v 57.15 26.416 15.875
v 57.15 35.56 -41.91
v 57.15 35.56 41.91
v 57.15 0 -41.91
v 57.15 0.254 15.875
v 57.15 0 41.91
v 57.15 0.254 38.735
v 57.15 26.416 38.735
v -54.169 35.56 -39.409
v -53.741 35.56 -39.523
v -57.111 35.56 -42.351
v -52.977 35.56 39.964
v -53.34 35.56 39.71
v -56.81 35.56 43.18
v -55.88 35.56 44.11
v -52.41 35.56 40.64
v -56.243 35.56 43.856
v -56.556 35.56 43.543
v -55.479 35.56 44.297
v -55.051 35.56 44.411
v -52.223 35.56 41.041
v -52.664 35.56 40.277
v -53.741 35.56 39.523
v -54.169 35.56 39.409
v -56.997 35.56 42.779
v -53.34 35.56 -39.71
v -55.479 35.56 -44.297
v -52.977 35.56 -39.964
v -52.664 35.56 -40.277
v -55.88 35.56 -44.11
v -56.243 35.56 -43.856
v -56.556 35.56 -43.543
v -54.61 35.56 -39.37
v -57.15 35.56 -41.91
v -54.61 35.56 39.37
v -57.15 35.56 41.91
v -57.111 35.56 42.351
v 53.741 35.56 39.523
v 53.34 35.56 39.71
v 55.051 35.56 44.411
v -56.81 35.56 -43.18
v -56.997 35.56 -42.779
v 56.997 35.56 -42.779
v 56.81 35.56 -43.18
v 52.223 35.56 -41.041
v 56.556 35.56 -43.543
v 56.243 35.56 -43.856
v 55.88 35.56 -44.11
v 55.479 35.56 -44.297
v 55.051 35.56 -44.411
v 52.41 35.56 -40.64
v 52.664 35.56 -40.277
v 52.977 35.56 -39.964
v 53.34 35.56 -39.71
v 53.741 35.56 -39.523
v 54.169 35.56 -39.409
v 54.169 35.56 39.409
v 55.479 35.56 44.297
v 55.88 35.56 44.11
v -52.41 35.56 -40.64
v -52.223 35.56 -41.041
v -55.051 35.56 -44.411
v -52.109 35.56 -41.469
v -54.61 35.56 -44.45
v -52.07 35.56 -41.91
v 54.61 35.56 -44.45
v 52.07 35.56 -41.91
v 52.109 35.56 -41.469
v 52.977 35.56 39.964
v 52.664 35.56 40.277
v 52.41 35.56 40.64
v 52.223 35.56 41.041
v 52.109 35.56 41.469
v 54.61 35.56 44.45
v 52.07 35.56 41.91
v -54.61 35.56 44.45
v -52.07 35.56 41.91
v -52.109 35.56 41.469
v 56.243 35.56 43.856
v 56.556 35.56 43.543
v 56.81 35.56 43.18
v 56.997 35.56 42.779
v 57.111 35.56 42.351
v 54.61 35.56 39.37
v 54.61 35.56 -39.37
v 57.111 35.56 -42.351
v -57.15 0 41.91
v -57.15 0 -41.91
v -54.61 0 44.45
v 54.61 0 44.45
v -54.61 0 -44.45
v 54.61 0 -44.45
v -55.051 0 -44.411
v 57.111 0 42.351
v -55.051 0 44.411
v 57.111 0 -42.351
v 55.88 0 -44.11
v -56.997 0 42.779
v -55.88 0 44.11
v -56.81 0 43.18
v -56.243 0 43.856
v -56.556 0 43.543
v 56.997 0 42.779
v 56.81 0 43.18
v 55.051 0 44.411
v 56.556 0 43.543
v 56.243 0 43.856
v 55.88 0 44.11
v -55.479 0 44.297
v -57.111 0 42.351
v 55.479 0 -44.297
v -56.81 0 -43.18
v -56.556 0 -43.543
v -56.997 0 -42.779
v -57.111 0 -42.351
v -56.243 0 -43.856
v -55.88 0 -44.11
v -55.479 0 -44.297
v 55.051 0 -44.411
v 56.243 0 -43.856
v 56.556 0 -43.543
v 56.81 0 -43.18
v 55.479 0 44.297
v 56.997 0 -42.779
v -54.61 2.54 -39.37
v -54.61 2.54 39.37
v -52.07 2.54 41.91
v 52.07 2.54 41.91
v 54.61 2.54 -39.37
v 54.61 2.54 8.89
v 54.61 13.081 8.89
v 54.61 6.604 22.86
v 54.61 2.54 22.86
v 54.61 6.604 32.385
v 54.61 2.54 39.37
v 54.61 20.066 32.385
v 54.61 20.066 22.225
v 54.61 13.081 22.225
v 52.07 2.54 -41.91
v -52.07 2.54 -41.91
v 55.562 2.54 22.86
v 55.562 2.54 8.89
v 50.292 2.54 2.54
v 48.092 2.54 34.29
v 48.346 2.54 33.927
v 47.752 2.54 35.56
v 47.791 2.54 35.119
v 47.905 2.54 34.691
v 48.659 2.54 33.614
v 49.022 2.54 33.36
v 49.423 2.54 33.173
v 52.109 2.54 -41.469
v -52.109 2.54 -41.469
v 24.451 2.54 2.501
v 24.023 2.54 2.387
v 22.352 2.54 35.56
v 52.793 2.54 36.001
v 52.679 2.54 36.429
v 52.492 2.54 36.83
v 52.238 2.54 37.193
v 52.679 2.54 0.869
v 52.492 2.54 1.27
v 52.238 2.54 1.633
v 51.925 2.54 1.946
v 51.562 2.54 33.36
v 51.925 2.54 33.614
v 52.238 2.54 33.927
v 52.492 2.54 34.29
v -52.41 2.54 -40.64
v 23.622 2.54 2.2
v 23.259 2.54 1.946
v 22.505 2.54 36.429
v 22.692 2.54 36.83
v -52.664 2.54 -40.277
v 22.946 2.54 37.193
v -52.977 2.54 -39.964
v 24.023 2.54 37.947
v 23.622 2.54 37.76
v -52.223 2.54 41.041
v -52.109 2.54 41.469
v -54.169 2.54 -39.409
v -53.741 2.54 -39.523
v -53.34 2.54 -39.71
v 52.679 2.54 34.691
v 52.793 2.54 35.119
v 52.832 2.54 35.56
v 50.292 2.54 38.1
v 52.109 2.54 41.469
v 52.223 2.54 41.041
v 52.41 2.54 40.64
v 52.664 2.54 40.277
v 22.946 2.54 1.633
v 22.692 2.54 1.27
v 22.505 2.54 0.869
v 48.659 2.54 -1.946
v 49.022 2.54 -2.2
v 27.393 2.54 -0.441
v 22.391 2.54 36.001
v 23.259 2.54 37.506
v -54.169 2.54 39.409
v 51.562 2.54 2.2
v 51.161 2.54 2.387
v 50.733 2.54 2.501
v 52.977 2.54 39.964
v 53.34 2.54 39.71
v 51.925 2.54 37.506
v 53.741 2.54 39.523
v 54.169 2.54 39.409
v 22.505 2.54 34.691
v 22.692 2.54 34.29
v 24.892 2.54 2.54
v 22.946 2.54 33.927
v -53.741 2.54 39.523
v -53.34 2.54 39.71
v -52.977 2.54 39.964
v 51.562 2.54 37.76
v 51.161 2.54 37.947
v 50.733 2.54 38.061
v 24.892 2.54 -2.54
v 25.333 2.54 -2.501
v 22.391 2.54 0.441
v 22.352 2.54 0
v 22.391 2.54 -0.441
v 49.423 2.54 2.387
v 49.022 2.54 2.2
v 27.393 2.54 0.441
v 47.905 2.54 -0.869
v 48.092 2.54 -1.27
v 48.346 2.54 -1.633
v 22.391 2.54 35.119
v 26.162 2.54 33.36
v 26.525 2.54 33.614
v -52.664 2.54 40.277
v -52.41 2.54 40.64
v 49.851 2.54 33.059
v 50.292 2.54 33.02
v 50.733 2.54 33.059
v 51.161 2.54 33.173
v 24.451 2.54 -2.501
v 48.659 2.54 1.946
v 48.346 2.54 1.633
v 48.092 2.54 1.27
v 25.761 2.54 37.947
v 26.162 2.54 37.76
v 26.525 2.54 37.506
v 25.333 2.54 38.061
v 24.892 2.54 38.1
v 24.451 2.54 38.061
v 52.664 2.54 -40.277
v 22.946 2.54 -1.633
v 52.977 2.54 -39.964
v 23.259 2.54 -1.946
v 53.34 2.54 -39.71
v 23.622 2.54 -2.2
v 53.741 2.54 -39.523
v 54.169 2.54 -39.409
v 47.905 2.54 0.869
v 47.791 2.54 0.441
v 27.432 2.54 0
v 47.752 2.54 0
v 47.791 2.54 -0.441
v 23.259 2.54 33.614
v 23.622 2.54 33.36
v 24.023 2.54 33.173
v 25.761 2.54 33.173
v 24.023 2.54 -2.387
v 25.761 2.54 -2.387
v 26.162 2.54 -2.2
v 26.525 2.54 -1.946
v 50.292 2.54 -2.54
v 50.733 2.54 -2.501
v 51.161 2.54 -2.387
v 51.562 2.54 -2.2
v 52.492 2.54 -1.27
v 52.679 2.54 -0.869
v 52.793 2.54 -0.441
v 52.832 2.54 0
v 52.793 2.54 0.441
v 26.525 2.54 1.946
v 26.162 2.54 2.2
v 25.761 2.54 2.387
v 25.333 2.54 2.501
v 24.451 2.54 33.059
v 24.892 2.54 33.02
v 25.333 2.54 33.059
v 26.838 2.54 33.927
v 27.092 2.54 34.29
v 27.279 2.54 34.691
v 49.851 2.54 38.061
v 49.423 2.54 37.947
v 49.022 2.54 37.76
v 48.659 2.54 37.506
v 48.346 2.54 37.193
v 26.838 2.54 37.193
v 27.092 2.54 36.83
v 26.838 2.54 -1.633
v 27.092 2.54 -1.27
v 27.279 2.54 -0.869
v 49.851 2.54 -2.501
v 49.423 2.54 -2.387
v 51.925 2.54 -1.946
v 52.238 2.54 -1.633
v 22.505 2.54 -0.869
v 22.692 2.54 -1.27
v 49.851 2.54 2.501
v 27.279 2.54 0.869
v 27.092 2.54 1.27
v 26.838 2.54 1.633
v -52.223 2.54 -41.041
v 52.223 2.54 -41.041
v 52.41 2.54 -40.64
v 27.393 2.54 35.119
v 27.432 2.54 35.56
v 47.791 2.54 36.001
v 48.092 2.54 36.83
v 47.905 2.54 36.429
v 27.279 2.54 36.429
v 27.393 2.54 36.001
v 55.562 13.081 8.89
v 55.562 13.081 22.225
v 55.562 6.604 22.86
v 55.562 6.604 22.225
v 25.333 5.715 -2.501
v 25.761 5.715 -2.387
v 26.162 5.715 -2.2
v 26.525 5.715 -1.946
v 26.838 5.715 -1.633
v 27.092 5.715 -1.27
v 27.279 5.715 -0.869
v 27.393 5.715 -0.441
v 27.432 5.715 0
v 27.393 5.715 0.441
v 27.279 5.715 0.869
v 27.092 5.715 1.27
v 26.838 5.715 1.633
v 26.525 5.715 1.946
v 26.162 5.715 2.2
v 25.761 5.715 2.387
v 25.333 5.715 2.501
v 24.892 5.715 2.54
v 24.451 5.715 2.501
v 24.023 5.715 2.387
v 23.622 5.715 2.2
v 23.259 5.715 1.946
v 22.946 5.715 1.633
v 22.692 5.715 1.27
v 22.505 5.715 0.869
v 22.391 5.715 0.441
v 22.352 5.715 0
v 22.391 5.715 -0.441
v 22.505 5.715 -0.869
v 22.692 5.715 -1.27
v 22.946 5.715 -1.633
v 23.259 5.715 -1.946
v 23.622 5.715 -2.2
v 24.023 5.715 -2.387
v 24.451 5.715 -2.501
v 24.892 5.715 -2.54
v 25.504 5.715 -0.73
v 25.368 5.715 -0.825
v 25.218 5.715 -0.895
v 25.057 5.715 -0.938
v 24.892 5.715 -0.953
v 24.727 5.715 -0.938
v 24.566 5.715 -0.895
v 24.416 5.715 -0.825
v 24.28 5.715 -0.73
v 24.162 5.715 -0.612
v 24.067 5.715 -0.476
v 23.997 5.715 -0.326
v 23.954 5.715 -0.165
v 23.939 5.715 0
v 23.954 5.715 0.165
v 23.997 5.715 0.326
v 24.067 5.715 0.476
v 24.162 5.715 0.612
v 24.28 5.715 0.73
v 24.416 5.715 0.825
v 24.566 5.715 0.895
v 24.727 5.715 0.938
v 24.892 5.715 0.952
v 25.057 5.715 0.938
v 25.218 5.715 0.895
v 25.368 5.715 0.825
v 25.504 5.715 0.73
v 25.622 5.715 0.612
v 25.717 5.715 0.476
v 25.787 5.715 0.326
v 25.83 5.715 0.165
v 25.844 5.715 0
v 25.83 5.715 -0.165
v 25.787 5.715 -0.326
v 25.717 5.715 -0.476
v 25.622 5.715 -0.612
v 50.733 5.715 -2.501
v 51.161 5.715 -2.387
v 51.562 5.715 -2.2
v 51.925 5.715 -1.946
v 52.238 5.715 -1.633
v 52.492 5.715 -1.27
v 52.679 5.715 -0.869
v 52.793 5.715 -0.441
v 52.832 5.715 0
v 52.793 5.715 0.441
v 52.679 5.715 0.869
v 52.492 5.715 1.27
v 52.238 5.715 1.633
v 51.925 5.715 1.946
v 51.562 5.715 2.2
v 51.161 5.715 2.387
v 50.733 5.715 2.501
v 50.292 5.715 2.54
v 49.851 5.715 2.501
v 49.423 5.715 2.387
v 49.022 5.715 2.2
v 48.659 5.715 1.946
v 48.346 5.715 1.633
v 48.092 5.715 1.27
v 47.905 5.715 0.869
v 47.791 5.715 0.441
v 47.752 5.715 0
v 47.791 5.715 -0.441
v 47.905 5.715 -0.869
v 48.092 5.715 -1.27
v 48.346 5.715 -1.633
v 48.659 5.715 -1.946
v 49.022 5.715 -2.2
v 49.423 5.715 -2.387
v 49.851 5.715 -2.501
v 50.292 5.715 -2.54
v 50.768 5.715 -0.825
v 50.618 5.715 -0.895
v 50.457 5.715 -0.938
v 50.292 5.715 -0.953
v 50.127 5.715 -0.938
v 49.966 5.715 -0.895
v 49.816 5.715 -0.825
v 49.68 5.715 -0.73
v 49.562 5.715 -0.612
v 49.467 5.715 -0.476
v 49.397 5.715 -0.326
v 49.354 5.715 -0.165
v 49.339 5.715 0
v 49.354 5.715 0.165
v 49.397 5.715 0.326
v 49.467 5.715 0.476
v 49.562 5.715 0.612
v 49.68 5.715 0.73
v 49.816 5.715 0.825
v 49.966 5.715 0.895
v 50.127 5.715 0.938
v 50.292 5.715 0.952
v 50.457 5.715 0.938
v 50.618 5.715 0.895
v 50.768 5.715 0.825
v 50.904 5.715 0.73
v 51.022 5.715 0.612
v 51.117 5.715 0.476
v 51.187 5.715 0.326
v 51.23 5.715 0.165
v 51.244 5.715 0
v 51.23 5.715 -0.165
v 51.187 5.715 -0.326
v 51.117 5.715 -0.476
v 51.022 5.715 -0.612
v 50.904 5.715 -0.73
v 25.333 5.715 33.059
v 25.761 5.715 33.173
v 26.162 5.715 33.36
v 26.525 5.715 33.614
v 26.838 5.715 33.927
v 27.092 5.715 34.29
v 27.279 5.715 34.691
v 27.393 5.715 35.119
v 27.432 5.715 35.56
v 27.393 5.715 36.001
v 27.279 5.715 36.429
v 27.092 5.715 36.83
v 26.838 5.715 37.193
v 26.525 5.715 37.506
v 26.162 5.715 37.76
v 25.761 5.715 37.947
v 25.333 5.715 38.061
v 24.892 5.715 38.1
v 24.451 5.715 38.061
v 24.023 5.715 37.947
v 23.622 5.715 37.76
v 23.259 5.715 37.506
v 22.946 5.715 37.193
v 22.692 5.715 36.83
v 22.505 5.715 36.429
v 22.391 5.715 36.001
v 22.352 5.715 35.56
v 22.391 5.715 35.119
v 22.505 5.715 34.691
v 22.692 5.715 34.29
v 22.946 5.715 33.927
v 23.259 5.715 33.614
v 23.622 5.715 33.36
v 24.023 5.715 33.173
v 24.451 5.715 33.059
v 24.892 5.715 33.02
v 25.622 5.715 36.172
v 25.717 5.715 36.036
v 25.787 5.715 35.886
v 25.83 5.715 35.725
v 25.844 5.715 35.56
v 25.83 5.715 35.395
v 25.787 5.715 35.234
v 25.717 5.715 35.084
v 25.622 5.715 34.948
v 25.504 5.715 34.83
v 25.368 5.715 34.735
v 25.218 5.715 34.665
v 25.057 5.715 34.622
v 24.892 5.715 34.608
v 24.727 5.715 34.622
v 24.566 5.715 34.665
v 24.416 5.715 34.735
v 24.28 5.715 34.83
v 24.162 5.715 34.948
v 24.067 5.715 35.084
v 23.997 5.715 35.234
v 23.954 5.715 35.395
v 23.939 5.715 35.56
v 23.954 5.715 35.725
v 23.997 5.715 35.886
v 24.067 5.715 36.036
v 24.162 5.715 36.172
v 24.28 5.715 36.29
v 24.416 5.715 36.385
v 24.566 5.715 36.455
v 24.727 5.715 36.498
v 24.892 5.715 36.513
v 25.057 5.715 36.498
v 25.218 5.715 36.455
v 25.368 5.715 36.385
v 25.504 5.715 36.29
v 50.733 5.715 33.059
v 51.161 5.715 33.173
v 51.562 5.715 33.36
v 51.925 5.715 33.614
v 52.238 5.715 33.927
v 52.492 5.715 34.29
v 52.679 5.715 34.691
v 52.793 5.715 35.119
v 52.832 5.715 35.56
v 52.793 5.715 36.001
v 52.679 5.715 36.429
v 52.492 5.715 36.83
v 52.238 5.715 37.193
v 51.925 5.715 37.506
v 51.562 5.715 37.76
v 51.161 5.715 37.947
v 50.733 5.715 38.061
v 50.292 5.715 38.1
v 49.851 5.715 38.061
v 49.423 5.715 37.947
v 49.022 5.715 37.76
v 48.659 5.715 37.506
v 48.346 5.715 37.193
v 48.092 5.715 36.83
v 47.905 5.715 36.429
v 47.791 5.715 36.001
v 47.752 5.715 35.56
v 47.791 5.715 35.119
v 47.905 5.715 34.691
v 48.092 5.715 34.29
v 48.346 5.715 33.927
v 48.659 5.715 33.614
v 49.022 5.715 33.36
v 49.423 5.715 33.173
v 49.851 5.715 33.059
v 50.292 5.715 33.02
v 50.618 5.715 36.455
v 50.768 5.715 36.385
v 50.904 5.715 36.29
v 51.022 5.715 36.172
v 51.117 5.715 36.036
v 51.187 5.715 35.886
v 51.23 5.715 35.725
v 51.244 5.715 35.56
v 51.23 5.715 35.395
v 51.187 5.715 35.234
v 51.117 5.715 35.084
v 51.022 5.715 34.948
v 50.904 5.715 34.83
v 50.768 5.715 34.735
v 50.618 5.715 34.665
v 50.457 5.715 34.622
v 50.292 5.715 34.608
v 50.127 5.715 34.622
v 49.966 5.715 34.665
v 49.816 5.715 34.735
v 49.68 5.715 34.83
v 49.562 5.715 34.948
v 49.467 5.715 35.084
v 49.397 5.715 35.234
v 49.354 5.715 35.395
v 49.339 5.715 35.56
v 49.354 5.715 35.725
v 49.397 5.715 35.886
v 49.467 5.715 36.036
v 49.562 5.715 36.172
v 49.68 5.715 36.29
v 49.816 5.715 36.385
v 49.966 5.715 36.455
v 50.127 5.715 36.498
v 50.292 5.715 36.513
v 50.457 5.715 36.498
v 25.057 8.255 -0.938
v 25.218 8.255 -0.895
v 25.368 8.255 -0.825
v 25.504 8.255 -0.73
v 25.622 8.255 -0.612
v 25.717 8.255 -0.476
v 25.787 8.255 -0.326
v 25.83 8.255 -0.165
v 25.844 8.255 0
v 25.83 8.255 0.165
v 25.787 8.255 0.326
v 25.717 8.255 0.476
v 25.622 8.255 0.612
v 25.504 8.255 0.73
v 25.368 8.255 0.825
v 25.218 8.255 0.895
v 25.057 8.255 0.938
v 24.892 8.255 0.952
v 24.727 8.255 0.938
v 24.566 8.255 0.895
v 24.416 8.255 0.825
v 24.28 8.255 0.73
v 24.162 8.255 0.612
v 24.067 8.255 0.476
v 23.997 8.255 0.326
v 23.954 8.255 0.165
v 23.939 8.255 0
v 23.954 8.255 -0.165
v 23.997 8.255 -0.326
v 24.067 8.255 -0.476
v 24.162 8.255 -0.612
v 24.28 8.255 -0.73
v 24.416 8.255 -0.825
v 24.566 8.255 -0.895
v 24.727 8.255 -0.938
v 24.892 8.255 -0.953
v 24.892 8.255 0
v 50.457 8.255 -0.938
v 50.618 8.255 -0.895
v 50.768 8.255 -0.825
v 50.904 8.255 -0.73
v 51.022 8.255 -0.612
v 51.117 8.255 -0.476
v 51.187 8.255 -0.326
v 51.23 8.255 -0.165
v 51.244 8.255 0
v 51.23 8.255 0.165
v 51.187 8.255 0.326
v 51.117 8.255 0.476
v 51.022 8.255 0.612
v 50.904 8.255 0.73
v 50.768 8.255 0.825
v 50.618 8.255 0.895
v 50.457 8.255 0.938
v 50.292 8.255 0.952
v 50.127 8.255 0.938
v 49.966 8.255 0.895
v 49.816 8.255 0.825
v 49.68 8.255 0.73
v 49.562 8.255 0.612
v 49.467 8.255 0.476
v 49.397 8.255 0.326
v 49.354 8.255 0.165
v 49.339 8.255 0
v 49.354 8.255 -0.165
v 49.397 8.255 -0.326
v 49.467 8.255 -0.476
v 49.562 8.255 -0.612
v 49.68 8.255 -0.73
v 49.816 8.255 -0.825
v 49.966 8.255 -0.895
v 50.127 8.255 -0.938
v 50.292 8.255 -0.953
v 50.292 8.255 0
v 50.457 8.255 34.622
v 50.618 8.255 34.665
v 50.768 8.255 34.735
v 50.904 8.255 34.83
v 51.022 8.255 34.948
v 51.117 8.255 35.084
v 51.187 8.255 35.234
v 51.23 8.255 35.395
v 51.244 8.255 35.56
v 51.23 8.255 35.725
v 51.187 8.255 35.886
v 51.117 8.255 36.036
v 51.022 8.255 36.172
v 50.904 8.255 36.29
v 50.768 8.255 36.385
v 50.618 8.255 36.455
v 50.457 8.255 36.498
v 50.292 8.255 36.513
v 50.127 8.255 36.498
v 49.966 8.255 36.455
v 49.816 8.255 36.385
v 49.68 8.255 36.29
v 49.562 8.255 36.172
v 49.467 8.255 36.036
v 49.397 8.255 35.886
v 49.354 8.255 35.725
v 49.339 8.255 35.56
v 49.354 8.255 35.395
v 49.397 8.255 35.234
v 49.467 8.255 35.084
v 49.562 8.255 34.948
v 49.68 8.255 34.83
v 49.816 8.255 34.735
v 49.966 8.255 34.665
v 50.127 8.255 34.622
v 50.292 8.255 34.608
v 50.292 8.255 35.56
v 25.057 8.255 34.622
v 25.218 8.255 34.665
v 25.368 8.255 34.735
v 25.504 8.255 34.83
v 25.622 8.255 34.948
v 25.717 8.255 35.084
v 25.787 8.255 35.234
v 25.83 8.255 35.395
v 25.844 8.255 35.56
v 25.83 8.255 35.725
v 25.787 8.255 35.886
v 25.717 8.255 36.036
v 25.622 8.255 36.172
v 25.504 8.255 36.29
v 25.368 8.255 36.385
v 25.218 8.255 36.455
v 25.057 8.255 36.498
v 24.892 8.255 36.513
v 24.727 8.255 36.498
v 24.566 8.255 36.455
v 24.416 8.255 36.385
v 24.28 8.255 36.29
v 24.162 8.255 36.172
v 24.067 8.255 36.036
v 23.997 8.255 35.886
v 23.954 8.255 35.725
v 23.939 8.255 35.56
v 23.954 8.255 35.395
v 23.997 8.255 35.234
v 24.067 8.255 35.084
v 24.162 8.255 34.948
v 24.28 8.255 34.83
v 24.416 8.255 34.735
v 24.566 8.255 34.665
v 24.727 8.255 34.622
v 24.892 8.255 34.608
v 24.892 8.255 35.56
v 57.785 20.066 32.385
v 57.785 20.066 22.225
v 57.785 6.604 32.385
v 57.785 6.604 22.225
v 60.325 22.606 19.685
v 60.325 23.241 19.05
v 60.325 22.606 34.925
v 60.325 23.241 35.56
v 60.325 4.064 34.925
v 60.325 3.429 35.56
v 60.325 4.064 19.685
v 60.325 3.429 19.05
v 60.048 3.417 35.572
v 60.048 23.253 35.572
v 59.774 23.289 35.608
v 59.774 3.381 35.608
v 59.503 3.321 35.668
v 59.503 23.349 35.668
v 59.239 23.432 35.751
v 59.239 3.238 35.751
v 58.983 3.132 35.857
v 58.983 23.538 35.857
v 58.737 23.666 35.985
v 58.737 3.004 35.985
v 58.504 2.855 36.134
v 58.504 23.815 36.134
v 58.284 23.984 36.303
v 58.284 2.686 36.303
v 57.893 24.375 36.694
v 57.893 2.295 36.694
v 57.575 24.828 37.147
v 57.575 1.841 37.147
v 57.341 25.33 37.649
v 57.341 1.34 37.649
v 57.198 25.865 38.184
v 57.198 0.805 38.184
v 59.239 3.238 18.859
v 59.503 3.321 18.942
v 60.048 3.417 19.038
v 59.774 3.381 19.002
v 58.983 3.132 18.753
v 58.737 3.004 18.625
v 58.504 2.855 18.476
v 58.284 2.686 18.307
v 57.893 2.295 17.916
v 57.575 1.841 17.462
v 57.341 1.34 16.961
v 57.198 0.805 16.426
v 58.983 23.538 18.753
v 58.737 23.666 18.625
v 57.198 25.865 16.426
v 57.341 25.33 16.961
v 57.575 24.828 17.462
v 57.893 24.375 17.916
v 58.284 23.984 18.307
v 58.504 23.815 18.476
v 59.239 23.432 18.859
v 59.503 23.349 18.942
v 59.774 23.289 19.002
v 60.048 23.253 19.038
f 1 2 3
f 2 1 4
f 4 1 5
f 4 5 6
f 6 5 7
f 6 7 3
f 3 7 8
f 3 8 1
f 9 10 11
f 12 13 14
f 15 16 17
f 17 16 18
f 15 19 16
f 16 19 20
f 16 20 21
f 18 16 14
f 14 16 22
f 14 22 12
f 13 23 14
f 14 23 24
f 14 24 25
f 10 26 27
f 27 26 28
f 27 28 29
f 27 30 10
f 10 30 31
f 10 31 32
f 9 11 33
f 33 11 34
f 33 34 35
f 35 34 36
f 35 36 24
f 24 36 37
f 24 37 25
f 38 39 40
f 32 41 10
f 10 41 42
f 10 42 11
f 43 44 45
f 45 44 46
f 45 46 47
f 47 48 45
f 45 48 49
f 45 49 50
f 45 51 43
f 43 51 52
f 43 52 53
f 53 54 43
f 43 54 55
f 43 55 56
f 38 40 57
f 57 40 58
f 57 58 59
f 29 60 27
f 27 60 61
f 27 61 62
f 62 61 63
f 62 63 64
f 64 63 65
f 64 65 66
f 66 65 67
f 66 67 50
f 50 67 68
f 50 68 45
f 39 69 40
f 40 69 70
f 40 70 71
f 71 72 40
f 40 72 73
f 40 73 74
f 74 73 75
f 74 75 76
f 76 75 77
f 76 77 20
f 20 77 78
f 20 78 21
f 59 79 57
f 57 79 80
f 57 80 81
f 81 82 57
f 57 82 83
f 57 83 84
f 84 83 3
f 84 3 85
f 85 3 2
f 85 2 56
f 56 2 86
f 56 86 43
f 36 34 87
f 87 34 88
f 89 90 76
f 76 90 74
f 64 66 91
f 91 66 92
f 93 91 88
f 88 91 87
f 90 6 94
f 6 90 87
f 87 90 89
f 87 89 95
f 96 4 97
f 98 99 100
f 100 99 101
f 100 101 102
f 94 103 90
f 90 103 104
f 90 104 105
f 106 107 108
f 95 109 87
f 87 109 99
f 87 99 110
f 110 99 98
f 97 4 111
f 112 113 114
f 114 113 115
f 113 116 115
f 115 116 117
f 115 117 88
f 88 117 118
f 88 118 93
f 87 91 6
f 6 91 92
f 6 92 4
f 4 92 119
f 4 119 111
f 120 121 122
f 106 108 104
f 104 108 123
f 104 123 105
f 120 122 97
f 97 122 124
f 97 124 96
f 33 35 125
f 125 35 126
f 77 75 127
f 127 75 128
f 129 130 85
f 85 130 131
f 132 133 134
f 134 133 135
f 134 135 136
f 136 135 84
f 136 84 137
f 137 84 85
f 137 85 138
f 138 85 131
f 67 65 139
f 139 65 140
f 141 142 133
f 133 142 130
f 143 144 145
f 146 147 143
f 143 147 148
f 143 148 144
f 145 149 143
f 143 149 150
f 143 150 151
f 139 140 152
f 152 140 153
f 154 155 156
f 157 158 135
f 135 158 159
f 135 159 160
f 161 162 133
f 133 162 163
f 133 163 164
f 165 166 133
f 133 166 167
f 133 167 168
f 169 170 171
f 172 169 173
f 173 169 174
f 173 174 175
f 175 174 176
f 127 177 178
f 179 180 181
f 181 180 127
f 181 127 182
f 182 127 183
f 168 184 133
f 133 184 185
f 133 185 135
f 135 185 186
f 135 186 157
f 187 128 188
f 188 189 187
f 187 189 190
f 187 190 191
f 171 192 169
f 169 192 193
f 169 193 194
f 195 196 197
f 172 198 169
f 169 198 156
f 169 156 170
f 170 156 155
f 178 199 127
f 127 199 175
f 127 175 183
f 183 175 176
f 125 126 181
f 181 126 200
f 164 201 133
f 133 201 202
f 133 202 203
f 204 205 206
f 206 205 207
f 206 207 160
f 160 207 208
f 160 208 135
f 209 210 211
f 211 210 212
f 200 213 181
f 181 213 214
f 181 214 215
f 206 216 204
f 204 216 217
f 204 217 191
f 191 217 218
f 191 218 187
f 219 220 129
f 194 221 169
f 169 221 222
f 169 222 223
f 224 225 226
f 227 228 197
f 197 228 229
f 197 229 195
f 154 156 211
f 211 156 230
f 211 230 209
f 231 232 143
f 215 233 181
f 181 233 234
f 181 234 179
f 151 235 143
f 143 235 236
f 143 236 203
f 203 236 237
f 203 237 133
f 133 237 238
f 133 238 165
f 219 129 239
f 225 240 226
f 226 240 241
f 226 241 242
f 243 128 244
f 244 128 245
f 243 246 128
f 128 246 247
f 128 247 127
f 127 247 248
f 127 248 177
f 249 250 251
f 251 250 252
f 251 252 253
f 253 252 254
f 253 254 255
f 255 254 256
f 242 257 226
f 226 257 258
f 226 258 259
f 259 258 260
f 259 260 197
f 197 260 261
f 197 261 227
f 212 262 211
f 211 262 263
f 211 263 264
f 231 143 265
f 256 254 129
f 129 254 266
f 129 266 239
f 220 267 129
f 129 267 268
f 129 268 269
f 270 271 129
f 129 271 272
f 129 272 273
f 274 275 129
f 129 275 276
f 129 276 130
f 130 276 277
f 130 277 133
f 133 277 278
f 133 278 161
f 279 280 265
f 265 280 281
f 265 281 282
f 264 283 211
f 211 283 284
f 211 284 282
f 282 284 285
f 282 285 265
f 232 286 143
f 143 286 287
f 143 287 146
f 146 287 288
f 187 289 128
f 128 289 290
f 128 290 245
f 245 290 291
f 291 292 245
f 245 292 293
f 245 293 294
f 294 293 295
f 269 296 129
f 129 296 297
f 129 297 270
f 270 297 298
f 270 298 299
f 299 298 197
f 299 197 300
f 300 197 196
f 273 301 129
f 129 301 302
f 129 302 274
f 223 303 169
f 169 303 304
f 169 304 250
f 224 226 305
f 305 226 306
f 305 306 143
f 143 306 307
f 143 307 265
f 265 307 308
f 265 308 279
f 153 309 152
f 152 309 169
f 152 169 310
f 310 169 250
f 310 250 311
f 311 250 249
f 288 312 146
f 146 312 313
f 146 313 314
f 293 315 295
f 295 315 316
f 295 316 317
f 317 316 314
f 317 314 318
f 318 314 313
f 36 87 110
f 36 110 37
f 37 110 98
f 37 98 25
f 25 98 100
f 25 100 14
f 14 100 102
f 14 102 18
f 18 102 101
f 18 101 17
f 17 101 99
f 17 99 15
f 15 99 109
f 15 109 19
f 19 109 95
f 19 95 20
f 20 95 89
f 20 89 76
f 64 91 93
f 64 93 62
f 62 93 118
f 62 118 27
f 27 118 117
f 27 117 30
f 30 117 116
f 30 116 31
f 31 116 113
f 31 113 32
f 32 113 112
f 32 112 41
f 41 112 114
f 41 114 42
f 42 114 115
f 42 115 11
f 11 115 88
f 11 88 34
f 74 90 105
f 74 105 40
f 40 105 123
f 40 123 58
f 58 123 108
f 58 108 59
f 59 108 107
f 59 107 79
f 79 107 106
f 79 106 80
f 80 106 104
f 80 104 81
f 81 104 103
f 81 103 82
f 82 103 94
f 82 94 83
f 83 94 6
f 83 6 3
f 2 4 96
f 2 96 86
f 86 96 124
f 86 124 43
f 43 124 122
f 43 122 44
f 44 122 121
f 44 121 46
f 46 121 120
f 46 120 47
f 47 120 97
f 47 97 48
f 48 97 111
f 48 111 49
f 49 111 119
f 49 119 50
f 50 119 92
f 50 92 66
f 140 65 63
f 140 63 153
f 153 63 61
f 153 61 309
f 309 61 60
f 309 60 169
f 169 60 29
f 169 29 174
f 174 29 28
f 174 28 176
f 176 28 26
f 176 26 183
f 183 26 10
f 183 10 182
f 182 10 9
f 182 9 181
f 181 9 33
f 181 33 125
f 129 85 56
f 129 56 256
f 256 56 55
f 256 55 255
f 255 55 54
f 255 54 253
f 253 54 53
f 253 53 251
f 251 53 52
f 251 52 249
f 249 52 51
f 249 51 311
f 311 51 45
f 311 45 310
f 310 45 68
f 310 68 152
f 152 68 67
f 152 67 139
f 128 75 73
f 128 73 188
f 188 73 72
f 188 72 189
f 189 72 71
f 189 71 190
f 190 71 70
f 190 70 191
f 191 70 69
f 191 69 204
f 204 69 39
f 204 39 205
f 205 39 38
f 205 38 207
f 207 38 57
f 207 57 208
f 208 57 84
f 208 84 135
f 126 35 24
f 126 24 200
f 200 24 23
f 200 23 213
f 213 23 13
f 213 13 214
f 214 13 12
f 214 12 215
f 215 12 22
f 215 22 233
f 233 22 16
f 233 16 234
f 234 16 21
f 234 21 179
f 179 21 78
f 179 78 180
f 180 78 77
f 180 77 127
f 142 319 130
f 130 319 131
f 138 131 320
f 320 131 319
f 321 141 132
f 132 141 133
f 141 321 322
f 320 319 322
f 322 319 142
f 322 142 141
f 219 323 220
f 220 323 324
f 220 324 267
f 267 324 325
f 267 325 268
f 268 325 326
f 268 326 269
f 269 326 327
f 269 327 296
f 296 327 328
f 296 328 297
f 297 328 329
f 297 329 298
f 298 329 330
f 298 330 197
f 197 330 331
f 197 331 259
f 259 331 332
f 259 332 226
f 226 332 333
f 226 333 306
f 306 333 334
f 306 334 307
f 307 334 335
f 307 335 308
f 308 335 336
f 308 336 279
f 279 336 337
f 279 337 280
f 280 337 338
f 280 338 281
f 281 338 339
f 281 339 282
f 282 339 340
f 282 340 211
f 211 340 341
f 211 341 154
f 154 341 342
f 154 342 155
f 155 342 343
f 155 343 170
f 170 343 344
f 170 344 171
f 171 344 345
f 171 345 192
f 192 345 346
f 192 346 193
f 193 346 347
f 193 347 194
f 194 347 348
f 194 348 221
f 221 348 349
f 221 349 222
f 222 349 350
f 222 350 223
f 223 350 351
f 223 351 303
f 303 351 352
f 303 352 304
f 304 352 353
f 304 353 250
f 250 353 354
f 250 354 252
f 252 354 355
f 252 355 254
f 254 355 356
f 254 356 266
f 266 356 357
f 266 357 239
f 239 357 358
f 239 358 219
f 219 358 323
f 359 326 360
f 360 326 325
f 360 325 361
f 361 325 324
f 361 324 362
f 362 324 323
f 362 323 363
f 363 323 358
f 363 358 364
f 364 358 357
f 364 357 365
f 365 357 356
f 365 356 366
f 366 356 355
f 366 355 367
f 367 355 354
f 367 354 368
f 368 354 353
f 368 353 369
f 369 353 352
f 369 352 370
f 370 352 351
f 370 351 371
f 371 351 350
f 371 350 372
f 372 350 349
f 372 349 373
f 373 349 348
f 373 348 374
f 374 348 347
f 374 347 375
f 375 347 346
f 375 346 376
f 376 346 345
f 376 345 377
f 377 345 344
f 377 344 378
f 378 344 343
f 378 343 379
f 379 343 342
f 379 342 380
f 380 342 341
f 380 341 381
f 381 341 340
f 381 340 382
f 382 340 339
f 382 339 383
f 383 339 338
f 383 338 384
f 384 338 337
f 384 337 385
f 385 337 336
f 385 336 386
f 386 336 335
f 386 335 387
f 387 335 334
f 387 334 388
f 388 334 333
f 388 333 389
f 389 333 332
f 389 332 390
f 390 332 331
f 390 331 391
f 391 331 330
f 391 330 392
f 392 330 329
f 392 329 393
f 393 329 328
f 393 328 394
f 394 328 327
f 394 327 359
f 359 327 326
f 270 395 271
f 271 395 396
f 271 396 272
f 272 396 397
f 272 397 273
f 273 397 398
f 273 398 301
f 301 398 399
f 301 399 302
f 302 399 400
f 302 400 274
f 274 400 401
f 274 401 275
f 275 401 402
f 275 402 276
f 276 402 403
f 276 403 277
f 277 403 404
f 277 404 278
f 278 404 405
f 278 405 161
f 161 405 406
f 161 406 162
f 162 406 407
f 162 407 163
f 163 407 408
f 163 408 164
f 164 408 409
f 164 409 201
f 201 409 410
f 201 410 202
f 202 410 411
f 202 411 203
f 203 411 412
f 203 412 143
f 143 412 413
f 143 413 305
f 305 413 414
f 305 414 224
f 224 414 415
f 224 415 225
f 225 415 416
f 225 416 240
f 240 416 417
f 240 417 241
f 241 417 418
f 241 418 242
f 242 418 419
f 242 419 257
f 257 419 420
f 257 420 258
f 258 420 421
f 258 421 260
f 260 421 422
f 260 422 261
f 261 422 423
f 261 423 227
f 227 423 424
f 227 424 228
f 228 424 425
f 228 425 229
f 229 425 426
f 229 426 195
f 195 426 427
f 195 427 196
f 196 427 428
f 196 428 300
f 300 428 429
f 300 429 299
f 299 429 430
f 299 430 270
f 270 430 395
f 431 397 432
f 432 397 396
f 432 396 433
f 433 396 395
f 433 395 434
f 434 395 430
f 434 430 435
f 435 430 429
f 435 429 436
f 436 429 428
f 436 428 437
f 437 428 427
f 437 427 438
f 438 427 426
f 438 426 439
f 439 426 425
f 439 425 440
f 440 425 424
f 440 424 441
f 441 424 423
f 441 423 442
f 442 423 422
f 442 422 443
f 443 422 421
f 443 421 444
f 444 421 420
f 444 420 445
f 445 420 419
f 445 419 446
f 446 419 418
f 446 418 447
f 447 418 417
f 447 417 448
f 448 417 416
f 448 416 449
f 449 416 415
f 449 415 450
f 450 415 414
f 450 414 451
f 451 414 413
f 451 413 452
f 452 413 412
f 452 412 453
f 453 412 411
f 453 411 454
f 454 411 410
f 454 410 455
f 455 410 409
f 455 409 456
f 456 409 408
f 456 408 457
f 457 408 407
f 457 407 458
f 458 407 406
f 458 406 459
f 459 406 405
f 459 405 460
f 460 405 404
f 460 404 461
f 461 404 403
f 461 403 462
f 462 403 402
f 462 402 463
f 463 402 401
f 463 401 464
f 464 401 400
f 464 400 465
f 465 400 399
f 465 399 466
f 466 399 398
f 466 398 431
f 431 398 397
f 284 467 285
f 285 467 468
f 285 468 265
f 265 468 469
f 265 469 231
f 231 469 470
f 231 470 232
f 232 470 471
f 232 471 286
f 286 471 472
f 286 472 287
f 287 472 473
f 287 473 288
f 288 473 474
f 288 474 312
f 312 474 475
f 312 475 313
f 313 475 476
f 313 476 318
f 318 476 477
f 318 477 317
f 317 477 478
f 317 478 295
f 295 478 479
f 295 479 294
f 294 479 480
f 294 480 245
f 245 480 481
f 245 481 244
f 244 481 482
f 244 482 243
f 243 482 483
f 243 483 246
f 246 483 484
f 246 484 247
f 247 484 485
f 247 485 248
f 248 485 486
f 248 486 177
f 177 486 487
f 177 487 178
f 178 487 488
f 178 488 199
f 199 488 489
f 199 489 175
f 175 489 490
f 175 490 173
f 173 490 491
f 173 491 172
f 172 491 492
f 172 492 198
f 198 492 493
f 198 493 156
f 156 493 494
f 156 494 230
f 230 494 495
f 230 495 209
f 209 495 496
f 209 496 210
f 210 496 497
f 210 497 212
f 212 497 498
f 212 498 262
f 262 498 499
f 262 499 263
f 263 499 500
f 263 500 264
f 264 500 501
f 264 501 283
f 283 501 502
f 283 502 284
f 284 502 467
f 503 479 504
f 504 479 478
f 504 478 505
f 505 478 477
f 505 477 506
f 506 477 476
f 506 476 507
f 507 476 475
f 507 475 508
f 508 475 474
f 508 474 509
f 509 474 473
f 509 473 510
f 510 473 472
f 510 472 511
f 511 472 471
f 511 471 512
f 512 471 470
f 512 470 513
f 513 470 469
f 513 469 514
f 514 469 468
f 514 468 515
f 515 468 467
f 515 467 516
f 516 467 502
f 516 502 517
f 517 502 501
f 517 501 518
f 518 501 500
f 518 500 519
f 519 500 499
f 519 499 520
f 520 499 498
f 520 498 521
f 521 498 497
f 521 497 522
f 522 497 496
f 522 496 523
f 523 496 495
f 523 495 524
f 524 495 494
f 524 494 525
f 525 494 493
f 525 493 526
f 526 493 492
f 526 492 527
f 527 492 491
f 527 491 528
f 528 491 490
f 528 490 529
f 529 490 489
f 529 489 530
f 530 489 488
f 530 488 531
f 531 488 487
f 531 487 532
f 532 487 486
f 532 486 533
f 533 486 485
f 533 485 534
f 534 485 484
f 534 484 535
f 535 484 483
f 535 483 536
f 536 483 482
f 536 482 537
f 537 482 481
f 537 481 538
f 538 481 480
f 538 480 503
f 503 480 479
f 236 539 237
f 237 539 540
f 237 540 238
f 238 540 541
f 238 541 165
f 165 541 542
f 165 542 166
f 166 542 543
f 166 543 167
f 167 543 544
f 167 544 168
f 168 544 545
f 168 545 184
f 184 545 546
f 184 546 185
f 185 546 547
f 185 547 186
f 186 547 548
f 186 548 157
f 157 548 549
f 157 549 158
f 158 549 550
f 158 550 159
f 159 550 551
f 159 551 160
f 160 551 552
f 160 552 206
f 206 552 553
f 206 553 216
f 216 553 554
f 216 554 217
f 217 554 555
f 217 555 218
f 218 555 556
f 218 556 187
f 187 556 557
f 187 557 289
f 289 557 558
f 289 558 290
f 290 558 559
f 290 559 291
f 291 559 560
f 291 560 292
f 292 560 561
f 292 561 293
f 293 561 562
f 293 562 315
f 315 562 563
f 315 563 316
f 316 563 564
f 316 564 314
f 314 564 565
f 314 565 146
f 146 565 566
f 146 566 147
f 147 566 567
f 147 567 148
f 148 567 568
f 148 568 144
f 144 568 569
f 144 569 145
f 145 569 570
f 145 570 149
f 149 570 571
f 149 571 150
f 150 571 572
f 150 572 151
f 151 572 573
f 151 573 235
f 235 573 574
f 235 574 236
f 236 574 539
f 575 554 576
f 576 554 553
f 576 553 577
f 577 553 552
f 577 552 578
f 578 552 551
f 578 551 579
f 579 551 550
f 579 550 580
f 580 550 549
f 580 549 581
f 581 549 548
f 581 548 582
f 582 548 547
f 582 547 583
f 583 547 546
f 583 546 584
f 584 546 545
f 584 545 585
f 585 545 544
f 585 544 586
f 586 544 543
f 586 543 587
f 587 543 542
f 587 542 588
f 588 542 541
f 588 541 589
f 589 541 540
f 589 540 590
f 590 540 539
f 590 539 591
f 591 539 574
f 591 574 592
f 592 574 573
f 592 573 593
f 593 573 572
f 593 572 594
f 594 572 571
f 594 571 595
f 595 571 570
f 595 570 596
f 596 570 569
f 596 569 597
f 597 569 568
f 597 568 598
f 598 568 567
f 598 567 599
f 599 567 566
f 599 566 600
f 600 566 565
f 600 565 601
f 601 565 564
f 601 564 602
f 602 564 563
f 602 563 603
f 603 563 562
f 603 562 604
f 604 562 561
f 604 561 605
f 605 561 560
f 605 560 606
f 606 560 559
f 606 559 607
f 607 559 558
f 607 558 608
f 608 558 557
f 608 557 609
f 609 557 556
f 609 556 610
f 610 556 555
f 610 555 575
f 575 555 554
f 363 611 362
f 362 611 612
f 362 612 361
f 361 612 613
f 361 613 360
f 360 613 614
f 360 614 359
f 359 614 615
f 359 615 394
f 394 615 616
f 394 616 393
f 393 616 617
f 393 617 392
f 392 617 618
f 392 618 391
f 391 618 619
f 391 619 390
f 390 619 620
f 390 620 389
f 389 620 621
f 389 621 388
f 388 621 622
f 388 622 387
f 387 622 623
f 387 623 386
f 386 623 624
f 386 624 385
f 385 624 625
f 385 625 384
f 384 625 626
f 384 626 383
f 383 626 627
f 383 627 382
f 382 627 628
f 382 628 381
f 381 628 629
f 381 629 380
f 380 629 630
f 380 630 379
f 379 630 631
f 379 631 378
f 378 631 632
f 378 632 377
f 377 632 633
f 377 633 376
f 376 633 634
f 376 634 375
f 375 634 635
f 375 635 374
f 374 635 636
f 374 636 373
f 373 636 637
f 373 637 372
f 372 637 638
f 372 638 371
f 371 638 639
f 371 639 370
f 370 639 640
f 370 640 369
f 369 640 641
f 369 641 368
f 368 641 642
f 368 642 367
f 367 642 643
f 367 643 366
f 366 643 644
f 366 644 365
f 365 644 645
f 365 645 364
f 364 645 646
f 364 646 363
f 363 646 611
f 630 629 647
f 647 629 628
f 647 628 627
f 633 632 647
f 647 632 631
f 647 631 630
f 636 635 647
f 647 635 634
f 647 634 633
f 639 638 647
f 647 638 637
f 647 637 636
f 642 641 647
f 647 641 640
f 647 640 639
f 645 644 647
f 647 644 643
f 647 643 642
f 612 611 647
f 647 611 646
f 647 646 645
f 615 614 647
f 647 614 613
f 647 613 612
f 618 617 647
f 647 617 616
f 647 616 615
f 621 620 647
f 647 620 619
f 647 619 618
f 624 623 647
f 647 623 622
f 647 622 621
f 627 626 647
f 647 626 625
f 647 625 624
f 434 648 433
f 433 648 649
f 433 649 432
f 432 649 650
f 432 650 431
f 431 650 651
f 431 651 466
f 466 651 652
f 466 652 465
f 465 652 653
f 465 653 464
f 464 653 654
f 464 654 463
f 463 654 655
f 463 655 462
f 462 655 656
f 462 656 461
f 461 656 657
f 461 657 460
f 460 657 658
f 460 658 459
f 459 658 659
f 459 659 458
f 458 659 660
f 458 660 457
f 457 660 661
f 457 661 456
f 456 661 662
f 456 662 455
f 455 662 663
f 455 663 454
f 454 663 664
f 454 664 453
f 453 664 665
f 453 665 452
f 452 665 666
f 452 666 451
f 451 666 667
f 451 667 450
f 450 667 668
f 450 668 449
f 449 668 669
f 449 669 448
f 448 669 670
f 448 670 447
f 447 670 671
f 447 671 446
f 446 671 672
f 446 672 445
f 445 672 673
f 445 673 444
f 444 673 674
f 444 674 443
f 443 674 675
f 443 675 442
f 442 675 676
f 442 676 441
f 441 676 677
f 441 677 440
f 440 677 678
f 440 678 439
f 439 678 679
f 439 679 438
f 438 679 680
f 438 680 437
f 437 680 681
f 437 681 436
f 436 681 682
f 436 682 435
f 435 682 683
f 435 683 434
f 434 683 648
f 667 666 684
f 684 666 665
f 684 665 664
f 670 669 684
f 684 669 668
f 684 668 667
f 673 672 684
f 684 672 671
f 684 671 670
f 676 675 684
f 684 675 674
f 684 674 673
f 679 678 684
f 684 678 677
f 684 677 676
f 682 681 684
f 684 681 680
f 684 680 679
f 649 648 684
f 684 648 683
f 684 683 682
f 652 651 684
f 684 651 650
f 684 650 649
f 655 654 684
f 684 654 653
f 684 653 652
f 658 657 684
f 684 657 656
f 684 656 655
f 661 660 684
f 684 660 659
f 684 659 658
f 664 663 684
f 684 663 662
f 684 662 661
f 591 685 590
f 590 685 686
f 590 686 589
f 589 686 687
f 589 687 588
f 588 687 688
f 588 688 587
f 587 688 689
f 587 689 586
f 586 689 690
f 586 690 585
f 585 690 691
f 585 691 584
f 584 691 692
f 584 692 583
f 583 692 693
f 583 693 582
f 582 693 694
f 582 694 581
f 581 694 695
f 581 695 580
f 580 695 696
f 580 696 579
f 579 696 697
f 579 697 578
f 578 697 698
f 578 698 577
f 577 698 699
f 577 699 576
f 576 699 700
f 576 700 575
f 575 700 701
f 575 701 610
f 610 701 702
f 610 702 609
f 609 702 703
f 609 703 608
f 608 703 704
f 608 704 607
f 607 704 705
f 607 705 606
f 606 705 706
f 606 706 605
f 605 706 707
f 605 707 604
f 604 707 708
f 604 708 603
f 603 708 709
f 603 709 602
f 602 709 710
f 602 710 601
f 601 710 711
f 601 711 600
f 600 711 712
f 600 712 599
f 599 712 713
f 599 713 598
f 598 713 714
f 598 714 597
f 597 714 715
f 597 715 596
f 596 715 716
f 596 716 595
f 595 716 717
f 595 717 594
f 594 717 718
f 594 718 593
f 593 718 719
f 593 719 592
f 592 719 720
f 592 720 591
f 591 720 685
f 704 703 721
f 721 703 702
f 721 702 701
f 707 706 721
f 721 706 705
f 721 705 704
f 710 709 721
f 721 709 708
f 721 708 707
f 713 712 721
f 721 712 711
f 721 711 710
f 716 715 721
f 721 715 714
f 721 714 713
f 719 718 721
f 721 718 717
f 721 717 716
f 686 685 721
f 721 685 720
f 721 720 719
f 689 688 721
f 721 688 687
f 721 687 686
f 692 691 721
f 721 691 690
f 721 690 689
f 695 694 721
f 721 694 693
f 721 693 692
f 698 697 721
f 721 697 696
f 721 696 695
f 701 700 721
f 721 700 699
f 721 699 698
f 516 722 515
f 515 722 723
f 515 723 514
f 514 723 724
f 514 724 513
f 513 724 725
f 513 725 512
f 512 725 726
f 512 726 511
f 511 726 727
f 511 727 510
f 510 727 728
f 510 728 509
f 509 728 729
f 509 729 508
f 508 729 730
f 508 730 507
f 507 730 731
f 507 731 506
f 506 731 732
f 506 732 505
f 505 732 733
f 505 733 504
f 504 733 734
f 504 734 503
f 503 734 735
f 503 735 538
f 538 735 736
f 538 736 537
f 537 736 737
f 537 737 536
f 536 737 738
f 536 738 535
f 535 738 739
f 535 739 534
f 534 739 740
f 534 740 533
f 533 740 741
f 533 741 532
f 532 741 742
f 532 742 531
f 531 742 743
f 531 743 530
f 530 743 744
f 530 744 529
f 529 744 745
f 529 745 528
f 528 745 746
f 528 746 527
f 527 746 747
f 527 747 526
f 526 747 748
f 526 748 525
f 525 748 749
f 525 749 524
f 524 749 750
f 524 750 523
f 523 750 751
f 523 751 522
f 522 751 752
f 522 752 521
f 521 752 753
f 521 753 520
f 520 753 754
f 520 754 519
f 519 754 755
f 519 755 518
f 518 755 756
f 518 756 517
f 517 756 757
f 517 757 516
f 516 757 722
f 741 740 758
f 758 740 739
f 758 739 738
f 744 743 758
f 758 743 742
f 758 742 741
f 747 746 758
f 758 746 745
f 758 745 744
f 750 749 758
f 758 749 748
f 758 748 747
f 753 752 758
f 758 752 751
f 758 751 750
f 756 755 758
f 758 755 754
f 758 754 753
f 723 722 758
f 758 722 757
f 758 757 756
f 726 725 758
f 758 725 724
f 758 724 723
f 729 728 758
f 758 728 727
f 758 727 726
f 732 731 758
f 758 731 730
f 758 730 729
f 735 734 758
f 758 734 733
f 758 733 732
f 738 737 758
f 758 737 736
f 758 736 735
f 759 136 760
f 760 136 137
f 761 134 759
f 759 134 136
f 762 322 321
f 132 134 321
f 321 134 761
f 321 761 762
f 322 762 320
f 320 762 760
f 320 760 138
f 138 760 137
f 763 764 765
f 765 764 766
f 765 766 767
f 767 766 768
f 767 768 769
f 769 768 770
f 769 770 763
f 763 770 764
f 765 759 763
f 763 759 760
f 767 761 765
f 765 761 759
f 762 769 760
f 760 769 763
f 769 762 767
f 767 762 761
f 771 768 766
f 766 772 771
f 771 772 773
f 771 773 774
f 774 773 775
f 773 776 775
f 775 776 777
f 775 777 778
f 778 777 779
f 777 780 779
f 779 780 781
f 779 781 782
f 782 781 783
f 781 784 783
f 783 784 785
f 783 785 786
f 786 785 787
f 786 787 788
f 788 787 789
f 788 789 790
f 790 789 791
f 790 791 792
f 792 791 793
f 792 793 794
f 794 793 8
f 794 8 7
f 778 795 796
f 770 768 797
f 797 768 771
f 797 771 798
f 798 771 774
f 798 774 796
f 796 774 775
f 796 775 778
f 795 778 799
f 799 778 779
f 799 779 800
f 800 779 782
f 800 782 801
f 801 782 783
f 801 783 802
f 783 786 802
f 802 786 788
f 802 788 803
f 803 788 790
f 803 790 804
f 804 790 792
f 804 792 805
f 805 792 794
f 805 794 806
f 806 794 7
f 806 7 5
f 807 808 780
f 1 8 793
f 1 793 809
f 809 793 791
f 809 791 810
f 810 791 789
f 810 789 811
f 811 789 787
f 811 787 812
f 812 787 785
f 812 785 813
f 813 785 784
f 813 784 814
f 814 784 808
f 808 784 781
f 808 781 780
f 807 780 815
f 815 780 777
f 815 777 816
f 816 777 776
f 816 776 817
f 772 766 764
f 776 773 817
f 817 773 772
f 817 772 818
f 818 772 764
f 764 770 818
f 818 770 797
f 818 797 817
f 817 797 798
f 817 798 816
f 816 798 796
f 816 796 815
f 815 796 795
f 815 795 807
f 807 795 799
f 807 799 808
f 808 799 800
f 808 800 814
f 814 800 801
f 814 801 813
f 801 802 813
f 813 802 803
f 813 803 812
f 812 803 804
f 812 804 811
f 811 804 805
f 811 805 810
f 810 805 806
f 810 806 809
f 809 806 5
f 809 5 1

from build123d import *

# Parameters (mm, degrees)
SKETCH1_W           = 114.3
SKETCH1_H           = 88.9
BOSS_EXTRUDE1_DEPTH = 35.56
SHELL1_T            = -2.54
FILLET1_R           = 2.54
SKETCH2_R           = 2.54
BOSS_EXTRUDE2_DEPTH = 33.02
SKETCH4_W           = 13.97
SKETCH4_H           = 10.541
CUT_EXTRUDE2_DEPTH  = 0.9525
SKETCH5_R           = 2.54
BOSS_EXTRUDE3_DEPTH = 3.175
SKETCH6_R           = 0.9525
BOSS_EXTRUDE4_DEPTH = 2.54
CUT_EXTRUDE3_REACH  = 129.69
SKETCH7_W           = 10.16
SKETCH7_H           = 13.462
SKETCH8_W           = 16.51
SKETCH8_H           = 19.812
SKETCH8_W_2         = 10.16
SKETCH8_H_2         = 13.462
BOSS_EXTRUDE5_DEPTH = 3.175
CHAMFER1_SIZE       = 2.54
FILLET2_R           = 3.175


with BuildPart() as part:
    # Sketch1 → Boss-Extrude1 (new body)
    with BuildSketch(Plane(origin=(0, 0, 0), x_dir=(1, 0, 0), z_dir=(0, 1, 0))):
        Rectangle(SKETCH1_W, SKETCH1_H)
    extrude(amount=BOSS_EXTRUDE1_DEPTH)

    # Shell1
    shell1_openings = [part.faces().sort_by_distance(p)[0] for p in [
        (0, 35.56, 0),
    ]]
    offset(amount=SHELL1_T, openings=shell1_openings, kind=Kind.INTERSECTION)

    # Fillet1
    fillet1_edges = [part.edges().sort_by_distance(p)[0] for p in [
        (-54.61, 19.05, -41.91),
        (-54.61, 19.05, 41.91),
        (54.61, 19.05, 41.91),
        (54.61, 19.05, -41.91),
        (-57.15, 17.78, -44.45),
        (57.15, 17.78, -44.45),
        (57.15, 17.78, 44.45),
        (-57.15, 17.78, 44.45),
    ]]
    fillet(fillet1_edges, radius=FILLET1_R)

    # Sketch2 → Boss-Extrude2 (add)
    with BuildSketch(Plane(origin=(0, 35.56, 0), x_dir=(1, 0, 0), z_dir=(0, 1, 0))):
        with Locations((-54.61, 41.91)):
            Circle(SKETCH2_R)
        with Locations((54.61, 41.91)):
            Circle(SKETCH2_R)
        with Locations((54.61, -41.91)):
            Circle(SKETCH2_R)
        with Locations((-54.61, -41.91)):
            Circle(SKETCH2_R)
    extrude(amount=-BOSS_EXTRUDE2_DEPTH)

    # Sketch4 → Cut-Extrude2 (cut)
    with BuildSketch(Plane.ZY.offset(-54.61)):
        with Locations((15.875, 7.8105)):
            Rectangle(SKETCH4_W, SKETCH4_H)
    extrude(amount=-CUT_EXTRUDE2_DEPTH, mode=Mode.SUBTRACT)

    # Sketch5 → Boss-Extrude3 (add)
    with BuildSketch(Plane(origin=(0, 2.54, 0), x_dir=(1, 0, 0), z_dir=(0, 1, 0))):
        with Locations(Location((24.892, 0, 0), (0, 0, 90))):
            Circle(SKETCH5_R)
        with Locations(Location((50.292, 0, 0), (0, 0, 90))):
            Circle(SKETCH5_R)
        with Locations(Location((24.892, -35.56, 0), (0, 0, 90))):
            Circle(SKETCH5_R)
        with Locations(Location((50.292, -35.56, 0), (0, 0, 90))):
            Circle(SKETCH5_R)
    extrude(amount=BOSS_EXTRUDE3_DEPTH)

    # Sketch6 → Boss-Extrude4 (add)
    with BuildSketch(Plane(origin=(0, 5.715, 0), x_dir=(1, 0, 0), z_dir=(0, 1, 0))):
        with Locations(Location((24.892, 0, 0), (0, 0, 270))):
            Circle(SKETCH6_R)
        with Locations(Location((50.292, 0, 0), (0, 0, 270))):
            Circle(SKETCH6_R)
        with Locations(Location((50.292, -35.56, 0), (0, 0, 270))):
            Circle(SKETCH6_R)
        with Locations(Location((24.892, -35.56, 0), (0, 0, 270))):
            Circle(SKETCH6_R)
    extrude(amount=BOSS_EXTRUDE4_DEPTH)

    # Sketch7 → Cut-Extrude3 (cut, up to next)
    with BuildSketch(Plane(origin=(57.15, 0, 0), x_dir=(0, 0, -1), z_dir=(1, 0, 0)), mode=Mode.PRIVATE) as cut_extrude3_sk1:
        with Locations((-27.305, 13.335)):
            Rectangle(SKETCH7_W, SKETCH7_H)
    cut_extrude3_tool1 = extrude(cut_extrude3_sk1.sketch, amount=-CUT_EXTRUDE3_REACH, mode=Mode.PRIVATE) & part.part
    add(cut_extrude3_tool1.solids().sort_by_distance((57.15, 13.335, 27.305))[0], mode=Mode.SUBTRACT)

    # Sketch8 → Boss-Extrude5 (add)
    with BuildSketch(Plane(origin=(57.15, 0, 0), x_dir=(0, 0, -1), z_dir=(1, 0, 0))):
        with Locations((-27.305, 13.335)):
            Rectangle(SKETCH8_W, SKETCH8_H)
        with Locations((-27.305, 13.335)):
            Rectangle(SKETCH8_W_2, SKETCH8_H_2, mode=Mode.SUBTRACT)
    extrude(amount=BOSS_EXTRUDE5_DEPTH)

    # Chamfer1
    chamfer1_edges = [part.edges().sort_by_distance(p)[0] for p in [
        (60.325, 13.335, 32.385),
        (60.325, 6.604, 27.305),
        (60.325, 13.335, 22.225),
        (60.325, 20.066, 27.305),
    ]]
    chamfer(chamfer1_edges, length=CHAMFER1_SIZE)

    # Fillet2
    fillet2_edges = [part.edges().sort_by_distance(p)[0] for p in [
        (57.15, 3.429, 27.305),
        (57.15, 13.335, 19.05),
        (57.15, 23.241, 27.305),
        (57.15, 13.335, 35.56),
    ]]
    fillet(fillet2_edges, radius=FILLET2_R - 0.0001)  # a hair under: the kernel refuses the full size


solid = part.part
